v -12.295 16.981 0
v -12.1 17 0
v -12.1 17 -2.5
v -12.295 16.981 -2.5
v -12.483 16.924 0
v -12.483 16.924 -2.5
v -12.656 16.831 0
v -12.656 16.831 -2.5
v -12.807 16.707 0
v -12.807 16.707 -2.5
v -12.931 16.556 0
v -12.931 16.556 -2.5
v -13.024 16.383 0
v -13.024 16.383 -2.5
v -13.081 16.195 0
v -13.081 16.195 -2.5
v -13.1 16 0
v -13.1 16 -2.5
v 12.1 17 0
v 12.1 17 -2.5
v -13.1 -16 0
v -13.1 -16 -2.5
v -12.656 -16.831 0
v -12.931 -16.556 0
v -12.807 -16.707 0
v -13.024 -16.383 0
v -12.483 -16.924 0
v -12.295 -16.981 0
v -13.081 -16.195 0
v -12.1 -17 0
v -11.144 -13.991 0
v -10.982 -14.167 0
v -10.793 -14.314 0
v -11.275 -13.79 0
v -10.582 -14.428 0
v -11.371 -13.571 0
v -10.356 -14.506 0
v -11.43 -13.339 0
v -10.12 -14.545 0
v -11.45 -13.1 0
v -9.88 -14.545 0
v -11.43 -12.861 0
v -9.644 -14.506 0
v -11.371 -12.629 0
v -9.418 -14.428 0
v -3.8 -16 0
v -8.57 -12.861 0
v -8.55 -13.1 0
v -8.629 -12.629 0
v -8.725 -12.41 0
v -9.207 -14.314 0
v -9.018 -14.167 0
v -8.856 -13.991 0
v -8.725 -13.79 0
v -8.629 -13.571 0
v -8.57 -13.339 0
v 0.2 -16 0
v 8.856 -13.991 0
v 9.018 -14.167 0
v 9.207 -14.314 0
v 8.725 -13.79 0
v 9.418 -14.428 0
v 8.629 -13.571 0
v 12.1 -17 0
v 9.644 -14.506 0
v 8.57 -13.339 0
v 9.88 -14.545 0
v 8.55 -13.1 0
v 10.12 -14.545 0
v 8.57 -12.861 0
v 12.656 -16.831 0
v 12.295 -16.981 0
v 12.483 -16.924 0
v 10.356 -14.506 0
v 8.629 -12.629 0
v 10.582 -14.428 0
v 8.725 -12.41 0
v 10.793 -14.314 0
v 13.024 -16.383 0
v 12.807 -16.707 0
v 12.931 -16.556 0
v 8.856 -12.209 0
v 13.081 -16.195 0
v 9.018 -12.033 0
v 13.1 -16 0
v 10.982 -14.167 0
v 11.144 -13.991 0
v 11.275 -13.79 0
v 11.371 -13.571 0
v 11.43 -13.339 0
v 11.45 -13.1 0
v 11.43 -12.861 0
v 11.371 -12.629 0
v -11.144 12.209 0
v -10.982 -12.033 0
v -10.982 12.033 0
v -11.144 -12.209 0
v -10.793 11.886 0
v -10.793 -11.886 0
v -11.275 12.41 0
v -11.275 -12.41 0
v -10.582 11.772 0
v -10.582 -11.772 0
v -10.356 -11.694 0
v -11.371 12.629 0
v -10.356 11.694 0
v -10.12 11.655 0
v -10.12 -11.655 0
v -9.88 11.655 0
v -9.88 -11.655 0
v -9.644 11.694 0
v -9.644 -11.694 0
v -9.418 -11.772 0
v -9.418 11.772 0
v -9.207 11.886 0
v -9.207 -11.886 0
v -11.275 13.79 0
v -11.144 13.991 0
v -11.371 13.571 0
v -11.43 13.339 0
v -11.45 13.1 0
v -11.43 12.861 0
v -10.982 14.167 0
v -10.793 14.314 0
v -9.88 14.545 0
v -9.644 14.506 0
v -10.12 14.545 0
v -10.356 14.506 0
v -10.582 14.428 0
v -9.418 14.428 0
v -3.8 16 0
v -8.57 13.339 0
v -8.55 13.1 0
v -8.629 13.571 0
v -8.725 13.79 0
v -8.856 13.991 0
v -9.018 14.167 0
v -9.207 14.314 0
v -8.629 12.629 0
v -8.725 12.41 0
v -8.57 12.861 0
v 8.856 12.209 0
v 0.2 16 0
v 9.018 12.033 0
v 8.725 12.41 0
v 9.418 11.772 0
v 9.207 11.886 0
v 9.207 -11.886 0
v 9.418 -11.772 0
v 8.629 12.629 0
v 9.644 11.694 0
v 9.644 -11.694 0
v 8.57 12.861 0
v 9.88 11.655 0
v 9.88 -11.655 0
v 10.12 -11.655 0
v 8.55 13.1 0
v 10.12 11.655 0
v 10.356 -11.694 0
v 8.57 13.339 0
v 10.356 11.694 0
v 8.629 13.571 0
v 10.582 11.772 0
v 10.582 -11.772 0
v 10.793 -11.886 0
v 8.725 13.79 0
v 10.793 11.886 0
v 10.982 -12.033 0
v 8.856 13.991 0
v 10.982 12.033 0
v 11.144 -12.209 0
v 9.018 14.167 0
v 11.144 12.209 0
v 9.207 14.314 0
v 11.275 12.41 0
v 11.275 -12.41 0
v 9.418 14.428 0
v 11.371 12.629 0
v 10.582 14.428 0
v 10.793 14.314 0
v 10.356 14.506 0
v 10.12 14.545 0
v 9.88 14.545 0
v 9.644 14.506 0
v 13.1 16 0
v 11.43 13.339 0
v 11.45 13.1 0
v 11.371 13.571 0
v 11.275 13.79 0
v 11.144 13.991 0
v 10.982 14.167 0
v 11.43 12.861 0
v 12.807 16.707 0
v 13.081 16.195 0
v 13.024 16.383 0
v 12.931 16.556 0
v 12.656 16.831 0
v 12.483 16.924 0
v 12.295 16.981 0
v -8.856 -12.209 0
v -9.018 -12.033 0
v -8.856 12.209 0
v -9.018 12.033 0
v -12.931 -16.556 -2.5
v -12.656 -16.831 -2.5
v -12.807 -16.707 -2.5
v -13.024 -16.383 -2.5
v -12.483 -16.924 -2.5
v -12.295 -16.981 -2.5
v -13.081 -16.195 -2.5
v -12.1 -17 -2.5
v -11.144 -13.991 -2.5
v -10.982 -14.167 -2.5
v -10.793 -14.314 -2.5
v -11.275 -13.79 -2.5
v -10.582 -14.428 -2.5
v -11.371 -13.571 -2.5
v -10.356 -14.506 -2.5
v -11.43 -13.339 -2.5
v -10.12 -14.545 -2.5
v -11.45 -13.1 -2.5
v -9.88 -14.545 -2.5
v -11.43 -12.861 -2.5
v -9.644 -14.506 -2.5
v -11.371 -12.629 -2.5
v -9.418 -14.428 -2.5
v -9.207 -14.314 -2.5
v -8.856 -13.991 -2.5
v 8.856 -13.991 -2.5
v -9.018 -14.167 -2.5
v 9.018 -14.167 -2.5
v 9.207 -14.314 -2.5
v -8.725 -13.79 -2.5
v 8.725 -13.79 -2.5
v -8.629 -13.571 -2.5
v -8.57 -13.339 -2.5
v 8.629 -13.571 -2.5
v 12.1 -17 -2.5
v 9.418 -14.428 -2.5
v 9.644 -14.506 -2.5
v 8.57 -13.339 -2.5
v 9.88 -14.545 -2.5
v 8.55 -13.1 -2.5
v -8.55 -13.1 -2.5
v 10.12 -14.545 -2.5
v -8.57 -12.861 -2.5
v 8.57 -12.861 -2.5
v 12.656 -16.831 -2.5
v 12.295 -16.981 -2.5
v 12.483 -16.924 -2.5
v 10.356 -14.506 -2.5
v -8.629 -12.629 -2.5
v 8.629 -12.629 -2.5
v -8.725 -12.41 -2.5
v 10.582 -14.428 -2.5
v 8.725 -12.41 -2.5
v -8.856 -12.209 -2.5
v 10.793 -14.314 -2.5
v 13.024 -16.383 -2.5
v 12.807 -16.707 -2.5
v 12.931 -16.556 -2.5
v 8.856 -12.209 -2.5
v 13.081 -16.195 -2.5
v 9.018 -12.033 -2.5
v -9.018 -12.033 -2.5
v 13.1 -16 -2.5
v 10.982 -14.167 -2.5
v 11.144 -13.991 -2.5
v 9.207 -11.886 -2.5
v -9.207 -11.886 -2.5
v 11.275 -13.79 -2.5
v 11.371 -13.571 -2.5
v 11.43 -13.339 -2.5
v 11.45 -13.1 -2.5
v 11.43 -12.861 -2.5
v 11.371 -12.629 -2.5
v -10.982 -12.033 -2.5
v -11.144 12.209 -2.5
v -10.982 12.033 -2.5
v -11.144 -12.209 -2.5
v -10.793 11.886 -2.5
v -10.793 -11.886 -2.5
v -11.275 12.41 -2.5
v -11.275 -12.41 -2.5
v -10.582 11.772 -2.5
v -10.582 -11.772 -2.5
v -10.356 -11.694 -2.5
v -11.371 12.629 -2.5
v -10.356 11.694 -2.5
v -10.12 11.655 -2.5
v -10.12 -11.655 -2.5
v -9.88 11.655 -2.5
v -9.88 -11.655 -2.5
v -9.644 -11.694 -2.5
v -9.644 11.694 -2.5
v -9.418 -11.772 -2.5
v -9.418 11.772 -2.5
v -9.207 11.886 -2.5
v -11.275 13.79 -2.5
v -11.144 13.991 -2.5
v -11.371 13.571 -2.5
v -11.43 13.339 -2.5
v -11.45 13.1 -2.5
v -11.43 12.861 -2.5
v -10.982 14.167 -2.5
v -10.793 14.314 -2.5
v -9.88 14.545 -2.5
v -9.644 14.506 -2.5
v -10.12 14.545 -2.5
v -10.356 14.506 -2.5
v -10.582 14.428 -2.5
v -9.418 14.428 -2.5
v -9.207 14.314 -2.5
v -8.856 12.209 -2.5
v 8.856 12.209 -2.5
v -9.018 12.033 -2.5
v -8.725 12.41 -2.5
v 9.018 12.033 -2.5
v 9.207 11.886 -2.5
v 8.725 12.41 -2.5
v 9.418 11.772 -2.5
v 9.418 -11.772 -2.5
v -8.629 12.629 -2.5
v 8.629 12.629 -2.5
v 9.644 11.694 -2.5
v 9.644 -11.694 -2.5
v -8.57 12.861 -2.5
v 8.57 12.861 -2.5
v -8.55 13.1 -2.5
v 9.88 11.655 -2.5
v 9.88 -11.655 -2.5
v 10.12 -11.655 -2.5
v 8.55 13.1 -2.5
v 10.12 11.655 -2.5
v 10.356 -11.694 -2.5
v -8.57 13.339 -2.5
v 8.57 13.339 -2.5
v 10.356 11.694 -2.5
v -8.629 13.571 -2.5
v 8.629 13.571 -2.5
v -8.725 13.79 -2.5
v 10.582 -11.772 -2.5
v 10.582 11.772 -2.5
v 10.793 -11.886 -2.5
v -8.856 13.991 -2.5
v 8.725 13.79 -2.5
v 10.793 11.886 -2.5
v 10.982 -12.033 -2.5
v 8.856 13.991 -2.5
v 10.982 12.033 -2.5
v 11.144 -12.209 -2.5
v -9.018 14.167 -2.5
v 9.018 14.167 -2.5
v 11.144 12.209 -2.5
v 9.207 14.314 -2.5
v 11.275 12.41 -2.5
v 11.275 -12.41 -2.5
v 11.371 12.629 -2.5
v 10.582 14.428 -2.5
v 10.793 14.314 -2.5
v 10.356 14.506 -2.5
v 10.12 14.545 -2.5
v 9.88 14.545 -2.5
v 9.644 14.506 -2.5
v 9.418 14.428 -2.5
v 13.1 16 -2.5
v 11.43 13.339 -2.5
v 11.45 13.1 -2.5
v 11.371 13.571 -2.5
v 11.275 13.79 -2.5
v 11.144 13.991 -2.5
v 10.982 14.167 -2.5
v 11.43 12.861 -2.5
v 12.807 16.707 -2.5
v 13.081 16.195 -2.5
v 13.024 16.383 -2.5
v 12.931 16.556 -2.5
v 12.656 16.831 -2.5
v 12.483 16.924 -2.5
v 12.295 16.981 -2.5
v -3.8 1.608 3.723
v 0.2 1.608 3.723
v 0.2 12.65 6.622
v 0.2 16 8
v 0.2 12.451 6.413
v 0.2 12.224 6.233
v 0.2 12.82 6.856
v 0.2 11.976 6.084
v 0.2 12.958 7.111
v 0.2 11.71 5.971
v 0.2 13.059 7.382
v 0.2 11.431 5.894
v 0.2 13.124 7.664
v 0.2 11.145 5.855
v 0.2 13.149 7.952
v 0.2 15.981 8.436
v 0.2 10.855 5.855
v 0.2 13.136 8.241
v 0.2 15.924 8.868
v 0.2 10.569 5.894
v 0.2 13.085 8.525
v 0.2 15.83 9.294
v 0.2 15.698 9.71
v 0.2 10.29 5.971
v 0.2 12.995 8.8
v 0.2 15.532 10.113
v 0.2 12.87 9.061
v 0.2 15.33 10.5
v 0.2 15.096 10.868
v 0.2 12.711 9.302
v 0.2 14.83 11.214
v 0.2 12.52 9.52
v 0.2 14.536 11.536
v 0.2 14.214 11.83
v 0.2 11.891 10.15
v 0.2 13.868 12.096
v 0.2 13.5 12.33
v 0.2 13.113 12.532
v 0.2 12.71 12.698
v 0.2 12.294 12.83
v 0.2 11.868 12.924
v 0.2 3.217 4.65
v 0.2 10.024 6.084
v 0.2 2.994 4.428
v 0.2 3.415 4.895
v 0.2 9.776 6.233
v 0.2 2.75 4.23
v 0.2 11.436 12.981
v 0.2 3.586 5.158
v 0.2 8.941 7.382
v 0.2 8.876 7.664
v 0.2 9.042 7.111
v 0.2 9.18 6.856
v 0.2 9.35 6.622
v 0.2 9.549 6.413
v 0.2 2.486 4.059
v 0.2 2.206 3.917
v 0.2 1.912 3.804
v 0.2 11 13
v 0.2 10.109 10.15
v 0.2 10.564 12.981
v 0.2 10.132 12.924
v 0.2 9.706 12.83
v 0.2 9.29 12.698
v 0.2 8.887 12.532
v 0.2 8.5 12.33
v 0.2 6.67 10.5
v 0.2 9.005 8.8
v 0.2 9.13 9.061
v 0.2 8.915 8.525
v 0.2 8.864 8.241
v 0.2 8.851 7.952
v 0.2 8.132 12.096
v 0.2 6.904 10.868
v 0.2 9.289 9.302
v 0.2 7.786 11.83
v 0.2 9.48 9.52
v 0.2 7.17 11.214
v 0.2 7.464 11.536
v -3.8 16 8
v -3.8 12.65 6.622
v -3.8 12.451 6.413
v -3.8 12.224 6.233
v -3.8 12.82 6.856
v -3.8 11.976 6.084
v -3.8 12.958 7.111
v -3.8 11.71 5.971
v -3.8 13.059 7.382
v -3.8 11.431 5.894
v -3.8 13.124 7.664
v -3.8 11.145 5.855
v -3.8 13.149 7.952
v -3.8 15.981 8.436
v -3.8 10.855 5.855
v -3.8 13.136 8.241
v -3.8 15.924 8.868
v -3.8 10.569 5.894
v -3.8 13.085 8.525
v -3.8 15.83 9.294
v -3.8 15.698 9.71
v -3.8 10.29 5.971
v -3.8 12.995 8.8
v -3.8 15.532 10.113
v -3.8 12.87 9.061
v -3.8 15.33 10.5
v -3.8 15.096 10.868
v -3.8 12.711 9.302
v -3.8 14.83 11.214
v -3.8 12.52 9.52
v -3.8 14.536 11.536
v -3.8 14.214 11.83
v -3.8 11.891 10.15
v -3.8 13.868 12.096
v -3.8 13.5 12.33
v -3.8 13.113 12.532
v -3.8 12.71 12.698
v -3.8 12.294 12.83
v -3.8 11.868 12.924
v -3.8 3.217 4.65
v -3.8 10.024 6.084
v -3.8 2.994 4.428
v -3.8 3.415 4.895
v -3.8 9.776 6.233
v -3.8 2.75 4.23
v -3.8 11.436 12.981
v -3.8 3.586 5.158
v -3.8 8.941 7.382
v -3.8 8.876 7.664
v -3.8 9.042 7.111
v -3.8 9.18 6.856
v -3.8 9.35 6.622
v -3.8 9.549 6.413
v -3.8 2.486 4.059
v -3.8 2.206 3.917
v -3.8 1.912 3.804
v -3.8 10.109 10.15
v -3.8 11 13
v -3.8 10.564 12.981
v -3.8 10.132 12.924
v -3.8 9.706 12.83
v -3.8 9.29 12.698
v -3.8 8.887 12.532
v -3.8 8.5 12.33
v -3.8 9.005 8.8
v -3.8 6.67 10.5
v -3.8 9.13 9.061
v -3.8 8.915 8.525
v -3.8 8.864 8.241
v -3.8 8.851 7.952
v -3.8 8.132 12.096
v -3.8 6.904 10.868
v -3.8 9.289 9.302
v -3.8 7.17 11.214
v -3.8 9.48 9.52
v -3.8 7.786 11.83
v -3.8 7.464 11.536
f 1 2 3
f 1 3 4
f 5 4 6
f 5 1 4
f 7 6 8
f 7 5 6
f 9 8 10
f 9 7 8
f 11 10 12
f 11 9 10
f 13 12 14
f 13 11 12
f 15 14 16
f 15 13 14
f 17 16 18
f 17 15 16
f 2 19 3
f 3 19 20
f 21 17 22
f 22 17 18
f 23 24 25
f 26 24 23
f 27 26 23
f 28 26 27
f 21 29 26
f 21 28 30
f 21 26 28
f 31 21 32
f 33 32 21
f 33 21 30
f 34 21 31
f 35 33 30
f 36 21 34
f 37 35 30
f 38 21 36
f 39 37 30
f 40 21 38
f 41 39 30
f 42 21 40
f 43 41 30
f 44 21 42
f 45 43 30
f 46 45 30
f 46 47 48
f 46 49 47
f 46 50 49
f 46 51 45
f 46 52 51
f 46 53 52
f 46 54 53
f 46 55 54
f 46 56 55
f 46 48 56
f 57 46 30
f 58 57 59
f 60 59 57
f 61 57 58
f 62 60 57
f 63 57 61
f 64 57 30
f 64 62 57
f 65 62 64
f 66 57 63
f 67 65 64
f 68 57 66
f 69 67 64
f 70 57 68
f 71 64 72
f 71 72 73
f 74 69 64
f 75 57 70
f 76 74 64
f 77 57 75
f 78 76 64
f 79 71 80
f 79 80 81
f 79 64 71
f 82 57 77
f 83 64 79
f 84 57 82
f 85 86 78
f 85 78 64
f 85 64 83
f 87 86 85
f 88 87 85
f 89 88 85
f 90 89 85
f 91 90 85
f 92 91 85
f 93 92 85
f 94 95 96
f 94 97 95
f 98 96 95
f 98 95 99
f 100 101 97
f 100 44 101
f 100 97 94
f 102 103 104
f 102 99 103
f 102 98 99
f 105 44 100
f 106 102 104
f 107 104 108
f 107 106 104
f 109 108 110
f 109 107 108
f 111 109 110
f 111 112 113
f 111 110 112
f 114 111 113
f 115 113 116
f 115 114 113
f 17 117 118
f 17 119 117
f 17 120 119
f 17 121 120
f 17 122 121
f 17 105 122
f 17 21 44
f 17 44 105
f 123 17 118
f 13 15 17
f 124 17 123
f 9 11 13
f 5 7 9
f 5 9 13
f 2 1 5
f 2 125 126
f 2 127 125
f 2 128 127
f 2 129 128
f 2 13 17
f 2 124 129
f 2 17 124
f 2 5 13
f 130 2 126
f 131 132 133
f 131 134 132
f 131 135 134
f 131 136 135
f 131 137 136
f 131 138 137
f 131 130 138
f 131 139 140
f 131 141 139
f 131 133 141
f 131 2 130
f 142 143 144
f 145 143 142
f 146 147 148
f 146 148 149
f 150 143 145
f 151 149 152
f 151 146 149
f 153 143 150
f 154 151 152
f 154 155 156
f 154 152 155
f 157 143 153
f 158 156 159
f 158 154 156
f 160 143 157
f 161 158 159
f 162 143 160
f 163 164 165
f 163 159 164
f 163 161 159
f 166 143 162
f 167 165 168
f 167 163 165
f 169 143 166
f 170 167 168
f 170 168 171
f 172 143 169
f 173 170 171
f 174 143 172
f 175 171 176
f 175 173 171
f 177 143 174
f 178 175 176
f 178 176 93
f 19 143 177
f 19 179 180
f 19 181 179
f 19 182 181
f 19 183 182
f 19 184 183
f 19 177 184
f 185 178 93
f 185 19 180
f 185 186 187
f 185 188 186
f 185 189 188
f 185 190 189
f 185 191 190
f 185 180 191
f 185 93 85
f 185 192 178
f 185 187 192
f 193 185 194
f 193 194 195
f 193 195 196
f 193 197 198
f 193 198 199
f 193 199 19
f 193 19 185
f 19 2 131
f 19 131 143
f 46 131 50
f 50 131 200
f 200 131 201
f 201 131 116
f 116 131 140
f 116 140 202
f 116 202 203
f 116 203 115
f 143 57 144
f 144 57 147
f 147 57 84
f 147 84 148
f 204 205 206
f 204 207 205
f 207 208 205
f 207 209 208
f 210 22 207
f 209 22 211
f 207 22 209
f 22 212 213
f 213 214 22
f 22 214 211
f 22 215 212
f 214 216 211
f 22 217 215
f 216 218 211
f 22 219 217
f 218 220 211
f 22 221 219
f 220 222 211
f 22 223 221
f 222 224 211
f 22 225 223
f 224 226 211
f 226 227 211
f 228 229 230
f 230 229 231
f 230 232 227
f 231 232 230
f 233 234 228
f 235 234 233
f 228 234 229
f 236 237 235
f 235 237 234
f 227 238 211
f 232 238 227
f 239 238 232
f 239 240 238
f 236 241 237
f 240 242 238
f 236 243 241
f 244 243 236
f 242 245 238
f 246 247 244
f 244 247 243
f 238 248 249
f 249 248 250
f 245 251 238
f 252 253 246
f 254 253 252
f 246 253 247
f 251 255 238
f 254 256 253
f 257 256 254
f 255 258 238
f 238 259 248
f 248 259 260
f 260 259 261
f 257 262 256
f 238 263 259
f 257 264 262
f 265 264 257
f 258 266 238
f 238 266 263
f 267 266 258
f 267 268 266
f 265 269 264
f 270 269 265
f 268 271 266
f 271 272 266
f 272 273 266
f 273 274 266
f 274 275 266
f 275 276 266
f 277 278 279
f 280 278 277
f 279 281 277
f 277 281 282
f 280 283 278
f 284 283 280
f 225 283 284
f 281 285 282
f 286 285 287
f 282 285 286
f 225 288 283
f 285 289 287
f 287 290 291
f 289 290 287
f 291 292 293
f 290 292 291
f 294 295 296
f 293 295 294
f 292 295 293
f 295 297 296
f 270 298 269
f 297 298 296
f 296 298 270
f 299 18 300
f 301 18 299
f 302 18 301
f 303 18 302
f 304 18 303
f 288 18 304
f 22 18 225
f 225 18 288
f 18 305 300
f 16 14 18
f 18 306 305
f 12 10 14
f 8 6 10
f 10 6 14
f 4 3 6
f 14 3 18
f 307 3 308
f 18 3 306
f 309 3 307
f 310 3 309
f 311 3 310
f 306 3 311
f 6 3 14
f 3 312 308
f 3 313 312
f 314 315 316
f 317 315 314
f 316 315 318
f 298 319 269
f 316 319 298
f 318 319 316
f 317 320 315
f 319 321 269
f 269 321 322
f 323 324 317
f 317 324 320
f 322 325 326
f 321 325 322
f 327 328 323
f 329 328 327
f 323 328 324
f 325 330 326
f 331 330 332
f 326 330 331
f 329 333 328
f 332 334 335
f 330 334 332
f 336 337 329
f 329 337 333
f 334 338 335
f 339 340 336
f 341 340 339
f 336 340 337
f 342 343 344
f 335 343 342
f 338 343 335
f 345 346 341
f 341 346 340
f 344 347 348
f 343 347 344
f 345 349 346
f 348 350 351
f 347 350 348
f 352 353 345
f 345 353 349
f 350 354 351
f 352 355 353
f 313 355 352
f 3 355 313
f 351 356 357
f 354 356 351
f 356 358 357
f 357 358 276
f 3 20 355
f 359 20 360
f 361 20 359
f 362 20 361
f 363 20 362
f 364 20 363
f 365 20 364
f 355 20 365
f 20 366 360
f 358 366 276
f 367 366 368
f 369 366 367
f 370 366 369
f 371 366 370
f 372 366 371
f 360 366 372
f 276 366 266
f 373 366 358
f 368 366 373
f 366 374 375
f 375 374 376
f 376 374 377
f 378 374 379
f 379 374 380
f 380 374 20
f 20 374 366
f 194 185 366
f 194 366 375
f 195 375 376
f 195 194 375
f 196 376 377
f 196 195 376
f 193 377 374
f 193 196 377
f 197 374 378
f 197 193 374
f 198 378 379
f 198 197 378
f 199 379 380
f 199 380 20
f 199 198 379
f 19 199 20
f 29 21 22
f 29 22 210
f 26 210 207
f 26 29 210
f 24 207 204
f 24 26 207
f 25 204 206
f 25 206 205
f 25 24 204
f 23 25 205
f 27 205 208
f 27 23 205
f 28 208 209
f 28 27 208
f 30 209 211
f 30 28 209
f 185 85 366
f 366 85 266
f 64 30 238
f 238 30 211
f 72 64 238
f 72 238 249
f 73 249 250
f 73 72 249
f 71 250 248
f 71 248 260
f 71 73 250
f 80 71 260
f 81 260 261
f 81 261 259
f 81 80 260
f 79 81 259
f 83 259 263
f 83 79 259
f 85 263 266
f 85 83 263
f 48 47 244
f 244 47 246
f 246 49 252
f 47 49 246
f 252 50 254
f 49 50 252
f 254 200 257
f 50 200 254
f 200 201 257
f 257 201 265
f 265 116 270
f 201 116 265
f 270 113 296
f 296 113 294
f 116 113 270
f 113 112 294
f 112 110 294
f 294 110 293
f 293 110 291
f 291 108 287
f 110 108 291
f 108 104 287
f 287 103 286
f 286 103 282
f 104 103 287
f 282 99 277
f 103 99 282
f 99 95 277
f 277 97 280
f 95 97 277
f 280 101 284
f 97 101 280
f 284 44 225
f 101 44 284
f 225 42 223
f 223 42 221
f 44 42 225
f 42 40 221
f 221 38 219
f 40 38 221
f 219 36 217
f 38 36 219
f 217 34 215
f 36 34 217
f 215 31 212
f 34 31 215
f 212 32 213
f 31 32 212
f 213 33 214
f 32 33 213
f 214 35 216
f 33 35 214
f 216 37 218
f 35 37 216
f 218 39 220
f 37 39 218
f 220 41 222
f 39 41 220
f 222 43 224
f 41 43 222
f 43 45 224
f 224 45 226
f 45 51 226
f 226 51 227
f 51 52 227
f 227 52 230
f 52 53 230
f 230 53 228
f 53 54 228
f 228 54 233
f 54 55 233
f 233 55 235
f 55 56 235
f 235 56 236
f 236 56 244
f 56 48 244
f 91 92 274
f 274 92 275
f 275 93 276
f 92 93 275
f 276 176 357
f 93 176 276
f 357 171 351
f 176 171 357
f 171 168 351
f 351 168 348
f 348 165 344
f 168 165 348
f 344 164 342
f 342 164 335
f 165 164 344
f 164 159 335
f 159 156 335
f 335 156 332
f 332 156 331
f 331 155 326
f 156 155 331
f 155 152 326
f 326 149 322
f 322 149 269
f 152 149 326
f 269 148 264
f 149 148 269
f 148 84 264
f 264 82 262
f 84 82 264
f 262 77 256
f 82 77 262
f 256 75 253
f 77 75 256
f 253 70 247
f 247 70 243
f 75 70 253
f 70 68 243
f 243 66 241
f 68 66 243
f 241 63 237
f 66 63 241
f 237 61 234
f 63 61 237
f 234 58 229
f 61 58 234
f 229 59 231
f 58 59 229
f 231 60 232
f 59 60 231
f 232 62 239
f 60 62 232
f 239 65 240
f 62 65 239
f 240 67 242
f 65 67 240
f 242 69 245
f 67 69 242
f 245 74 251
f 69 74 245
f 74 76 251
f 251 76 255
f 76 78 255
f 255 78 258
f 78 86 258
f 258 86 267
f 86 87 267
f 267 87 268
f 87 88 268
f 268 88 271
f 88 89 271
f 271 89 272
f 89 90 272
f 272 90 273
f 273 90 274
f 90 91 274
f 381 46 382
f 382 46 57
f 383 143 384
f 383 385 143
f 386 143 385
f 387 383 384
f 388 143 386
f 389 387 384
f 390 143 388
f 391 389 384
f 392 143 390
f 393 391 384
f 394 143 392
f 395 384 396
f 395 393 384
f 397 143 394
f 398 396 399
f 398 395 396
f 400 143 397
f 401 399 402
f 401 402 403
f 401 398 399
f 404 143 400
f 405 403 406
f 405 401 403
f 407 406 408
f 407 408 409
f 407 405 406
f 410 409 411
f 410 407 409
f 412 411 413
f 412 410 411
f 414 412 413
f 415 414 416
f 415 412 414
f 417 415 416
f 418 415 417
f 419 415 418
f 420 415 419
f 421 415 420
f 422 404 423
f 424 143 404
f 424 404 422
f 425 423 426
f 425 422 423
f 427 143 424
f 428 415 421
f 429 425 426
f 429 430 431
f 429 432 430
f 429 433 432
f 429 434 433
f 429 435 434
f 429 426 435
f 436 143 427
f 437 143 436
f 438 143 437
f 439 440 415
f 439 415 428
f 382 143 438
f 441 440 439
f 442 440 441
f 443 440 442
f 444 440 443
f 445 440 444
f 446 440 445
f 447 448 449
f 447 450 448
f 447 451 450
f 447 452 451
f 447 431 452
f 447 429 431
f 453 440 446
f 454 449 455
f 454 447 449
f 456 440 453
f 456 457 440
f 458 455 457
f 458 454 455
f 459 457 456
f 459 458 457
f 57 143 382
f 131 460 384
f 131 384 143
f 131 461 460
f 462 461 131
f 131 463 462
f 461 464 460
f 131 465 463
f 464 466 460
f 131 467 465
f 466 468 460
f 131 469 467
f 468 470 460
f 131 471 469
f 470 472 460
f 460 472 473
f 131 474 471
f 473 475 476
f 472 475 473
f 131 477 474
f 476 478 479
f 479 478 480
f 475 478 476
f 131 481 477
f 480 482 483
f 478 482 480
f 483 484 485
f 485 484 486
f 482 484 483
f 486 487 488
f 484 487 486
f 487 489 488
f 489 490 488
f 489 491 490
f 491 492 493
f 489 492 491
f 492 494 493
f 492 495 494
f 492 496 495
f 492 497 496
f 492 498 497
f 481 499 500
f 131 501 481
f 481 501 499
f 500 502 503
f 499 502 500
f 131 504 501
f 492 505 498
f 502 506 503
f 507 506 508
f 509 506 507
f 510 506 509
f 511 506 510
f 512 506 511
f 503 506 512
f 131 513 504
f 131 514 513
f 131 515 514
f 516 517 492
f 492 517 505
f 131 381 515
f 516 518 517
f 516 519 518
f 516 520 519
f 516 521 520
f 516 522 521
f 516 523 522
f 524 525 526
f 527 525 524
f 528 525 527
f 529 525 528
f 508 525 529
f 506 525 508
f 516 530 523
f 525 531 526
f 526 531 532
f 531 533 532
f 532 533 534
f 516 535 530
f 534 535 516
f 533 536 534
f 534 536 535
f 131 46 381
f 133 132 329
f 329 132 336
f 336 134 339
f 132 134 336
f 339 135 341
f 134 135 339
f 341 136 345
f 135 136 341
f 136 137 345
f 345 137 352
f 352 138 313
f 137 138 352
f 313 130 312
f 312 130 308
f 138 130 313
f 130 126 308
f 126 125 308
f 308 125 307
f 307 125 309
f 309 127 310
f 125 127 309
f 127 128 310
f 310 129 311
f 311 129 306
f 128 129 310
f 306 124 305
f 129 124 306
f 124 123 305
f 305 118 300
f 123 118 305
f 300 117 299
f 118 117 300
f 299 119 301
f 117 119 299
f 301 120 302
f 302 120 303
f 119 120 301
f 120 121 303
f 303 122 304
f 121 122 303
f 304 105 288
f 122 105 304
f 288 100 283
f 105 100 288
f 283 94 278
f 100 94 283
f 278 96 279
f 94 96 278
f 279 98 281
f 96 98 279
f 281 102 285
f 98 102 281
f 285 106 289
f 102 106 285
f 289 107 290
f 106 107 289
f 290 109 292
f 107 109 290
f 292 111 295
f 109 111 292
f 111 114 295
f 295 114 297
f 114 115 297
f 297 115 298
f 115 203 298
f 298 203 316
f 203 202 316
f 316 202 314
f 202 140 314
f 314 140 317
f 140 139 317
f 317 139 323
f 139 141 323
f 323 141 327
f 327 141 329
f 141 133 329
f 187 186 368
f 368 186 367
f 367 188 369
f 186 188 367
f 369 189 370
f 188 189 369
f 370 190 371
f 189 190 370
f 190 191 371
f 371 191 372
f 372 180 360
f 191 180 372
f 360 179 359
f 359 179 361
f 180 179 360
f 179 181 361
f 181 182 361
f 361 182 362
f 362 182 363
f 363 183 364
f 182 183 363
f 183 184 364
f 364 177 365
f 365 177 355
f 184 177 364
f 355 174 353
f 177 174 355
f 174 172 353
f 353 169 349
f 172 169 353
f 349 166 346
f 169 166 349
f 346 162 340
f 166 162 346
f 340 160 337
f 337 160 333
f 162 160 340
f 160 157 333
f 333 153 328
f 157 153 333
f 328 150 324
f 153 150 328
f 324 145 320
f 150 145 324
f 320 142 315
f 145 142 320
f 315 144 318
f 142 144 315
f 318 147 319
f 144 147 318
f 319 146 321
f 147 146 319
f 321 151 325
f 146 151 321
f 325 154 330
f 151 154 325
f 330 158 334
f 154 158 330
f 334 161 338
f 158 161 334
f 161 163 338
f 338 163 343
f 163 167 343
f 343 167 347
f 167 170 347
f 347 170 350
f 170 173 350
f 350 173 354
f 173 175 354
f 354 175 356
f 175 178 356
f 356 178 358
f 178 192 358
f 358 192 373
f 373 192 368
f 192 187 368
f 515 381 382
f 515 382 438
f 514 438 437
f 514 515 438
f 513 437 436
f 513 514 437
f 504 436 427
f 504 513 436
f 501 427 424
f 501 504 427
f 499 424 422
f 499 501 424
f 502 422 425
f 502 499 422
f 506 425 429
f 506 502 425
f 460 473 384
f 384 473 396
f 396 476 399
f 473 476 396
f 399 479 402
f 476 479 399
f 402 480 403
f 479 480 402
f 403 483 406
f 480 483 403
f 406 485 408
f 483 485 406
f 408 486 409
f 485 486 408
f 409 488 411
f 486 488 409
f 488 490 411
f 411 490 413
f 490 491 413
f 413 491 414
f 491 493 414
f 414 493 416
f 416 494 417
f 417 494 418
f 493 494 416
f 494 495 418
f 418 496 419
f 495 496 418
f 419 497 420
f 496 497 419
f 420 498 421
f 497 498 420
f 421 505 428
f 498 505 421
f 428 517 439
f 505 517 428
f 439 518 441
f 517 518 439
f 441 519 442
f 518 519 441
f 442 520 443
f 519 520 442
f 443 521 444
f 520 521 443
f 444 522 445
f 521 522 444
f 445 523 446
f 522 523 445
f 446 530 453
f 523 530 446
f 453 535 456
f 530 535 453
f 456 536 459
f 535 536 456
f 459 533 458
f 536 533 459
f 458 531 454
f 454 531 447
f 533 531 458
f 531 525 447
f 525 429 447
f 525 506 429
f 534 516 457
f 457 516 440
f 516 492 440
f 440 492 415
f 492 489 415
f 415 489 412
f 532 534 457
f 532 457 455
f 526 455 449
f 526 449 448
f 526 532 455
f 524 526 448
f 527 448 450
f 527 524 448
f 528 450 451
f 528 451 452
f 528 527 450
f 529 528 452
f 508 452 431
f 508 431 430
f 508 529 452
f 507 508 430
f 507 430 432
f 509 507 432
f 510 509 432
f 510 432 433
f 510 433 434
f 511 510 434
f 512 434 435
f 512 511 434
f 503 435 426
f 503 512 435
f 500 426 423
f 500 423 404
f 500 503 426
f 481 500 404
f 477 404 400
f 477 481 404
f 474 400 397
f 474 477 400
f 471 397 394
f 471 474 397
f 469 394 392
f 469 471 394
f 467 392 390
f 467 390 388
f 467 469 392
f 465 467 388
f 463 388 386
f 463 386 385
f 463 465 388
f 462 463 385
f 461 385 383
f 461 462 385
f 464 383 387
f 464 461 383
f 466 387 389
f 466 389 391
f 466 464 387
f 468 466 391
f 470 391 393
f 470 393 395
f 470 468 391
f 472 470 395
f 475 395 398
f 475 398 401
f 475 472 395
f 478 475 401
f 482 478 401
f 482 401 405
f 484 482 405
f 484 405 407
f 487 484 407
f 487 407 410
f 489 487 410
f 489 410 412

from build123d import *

# Parameters (mm, degrees)
SKETCH_R     = 1.45
PAD_DEPTH    = 2.5
PAD001_DEPTH = 2


with BuildPart() as part:
    # Sketch → Pad (new body)
    with BuildSketch(Plane.XY):
        with BuildLine():
            ThreePointArc((-12.1, 17), (-12.807107, 16.707107), (-13.1, 16))
            Line((-13.1, -16), (-13.1, 16))
            ThreePointArc((-13.1, -16), (-12.807107, -16.707107), (-12.1, -17))
            Line((12.1, -17), (-12.1, -17))
            ThreePointArc((12.1, -17), (12.807107, -16.707107), (13.1, -16))
            Line((13.1, 16), (13.1, -16))
            ThreePointArc((13.1, 16), (12.807107, 16.707107), (12.1, 17))
            Line((-12.1, 17), (12.1, 17))
        make_face()
        with Locations((10, 13.1)):
            Circle(SKETCH_R, mode=Mode.SUBTRACT)
        with Locations((-10, 13.1)):
            Circle(SKETCH_R, mode=Mode.SUBTRACT)
        with Locations((-10, -13.1)):
            Circle(SKETCH_R, mode=Mode.SUBTRACT)
        with Locations((10, -13.1)):
            Circle(SKETCH_R, mode=Mode.SUBTRACT)
    extrude(amount=-PAD_DEPTH)

    # Sketch001 → Pad001 (join, symmetric)
    with BuildSketch(Plane.YZ.offset(-1.8)):
        with BuildLine():
            ThreePointArc((16, 8), (12.294095, 12.829629), (6.669873, 10.5))
            Line((6.669873, 10.5), (3.585892, 5.158388))
            ThreePointArc((1.60844, 3.723286), (2.749885, 4.230403), (3.585892, 5.158388))
            Line((1.60844, 3.723286), (-16, 0))
            Line((-16, 0), (16, 0))
            Line((16, 8), (16, 0))
        make_face()
        with BuildLine():
            Line((9.47972, 9.52028), (10.109441, 10.15))
            Line((10.109441, 10.15), (11.890559, 10.15))
            Line((11.890559, 10.15), (12.52028, 9.52028))
            ThreePointArc((9.47972, 9.52028), (11, 5.85), (12.52028, 9.52028))
        make_face(mode=Mode.SUBTRACT)
    extrude(amount=PAD001_DEPTH, both=True)


solid = part.part
